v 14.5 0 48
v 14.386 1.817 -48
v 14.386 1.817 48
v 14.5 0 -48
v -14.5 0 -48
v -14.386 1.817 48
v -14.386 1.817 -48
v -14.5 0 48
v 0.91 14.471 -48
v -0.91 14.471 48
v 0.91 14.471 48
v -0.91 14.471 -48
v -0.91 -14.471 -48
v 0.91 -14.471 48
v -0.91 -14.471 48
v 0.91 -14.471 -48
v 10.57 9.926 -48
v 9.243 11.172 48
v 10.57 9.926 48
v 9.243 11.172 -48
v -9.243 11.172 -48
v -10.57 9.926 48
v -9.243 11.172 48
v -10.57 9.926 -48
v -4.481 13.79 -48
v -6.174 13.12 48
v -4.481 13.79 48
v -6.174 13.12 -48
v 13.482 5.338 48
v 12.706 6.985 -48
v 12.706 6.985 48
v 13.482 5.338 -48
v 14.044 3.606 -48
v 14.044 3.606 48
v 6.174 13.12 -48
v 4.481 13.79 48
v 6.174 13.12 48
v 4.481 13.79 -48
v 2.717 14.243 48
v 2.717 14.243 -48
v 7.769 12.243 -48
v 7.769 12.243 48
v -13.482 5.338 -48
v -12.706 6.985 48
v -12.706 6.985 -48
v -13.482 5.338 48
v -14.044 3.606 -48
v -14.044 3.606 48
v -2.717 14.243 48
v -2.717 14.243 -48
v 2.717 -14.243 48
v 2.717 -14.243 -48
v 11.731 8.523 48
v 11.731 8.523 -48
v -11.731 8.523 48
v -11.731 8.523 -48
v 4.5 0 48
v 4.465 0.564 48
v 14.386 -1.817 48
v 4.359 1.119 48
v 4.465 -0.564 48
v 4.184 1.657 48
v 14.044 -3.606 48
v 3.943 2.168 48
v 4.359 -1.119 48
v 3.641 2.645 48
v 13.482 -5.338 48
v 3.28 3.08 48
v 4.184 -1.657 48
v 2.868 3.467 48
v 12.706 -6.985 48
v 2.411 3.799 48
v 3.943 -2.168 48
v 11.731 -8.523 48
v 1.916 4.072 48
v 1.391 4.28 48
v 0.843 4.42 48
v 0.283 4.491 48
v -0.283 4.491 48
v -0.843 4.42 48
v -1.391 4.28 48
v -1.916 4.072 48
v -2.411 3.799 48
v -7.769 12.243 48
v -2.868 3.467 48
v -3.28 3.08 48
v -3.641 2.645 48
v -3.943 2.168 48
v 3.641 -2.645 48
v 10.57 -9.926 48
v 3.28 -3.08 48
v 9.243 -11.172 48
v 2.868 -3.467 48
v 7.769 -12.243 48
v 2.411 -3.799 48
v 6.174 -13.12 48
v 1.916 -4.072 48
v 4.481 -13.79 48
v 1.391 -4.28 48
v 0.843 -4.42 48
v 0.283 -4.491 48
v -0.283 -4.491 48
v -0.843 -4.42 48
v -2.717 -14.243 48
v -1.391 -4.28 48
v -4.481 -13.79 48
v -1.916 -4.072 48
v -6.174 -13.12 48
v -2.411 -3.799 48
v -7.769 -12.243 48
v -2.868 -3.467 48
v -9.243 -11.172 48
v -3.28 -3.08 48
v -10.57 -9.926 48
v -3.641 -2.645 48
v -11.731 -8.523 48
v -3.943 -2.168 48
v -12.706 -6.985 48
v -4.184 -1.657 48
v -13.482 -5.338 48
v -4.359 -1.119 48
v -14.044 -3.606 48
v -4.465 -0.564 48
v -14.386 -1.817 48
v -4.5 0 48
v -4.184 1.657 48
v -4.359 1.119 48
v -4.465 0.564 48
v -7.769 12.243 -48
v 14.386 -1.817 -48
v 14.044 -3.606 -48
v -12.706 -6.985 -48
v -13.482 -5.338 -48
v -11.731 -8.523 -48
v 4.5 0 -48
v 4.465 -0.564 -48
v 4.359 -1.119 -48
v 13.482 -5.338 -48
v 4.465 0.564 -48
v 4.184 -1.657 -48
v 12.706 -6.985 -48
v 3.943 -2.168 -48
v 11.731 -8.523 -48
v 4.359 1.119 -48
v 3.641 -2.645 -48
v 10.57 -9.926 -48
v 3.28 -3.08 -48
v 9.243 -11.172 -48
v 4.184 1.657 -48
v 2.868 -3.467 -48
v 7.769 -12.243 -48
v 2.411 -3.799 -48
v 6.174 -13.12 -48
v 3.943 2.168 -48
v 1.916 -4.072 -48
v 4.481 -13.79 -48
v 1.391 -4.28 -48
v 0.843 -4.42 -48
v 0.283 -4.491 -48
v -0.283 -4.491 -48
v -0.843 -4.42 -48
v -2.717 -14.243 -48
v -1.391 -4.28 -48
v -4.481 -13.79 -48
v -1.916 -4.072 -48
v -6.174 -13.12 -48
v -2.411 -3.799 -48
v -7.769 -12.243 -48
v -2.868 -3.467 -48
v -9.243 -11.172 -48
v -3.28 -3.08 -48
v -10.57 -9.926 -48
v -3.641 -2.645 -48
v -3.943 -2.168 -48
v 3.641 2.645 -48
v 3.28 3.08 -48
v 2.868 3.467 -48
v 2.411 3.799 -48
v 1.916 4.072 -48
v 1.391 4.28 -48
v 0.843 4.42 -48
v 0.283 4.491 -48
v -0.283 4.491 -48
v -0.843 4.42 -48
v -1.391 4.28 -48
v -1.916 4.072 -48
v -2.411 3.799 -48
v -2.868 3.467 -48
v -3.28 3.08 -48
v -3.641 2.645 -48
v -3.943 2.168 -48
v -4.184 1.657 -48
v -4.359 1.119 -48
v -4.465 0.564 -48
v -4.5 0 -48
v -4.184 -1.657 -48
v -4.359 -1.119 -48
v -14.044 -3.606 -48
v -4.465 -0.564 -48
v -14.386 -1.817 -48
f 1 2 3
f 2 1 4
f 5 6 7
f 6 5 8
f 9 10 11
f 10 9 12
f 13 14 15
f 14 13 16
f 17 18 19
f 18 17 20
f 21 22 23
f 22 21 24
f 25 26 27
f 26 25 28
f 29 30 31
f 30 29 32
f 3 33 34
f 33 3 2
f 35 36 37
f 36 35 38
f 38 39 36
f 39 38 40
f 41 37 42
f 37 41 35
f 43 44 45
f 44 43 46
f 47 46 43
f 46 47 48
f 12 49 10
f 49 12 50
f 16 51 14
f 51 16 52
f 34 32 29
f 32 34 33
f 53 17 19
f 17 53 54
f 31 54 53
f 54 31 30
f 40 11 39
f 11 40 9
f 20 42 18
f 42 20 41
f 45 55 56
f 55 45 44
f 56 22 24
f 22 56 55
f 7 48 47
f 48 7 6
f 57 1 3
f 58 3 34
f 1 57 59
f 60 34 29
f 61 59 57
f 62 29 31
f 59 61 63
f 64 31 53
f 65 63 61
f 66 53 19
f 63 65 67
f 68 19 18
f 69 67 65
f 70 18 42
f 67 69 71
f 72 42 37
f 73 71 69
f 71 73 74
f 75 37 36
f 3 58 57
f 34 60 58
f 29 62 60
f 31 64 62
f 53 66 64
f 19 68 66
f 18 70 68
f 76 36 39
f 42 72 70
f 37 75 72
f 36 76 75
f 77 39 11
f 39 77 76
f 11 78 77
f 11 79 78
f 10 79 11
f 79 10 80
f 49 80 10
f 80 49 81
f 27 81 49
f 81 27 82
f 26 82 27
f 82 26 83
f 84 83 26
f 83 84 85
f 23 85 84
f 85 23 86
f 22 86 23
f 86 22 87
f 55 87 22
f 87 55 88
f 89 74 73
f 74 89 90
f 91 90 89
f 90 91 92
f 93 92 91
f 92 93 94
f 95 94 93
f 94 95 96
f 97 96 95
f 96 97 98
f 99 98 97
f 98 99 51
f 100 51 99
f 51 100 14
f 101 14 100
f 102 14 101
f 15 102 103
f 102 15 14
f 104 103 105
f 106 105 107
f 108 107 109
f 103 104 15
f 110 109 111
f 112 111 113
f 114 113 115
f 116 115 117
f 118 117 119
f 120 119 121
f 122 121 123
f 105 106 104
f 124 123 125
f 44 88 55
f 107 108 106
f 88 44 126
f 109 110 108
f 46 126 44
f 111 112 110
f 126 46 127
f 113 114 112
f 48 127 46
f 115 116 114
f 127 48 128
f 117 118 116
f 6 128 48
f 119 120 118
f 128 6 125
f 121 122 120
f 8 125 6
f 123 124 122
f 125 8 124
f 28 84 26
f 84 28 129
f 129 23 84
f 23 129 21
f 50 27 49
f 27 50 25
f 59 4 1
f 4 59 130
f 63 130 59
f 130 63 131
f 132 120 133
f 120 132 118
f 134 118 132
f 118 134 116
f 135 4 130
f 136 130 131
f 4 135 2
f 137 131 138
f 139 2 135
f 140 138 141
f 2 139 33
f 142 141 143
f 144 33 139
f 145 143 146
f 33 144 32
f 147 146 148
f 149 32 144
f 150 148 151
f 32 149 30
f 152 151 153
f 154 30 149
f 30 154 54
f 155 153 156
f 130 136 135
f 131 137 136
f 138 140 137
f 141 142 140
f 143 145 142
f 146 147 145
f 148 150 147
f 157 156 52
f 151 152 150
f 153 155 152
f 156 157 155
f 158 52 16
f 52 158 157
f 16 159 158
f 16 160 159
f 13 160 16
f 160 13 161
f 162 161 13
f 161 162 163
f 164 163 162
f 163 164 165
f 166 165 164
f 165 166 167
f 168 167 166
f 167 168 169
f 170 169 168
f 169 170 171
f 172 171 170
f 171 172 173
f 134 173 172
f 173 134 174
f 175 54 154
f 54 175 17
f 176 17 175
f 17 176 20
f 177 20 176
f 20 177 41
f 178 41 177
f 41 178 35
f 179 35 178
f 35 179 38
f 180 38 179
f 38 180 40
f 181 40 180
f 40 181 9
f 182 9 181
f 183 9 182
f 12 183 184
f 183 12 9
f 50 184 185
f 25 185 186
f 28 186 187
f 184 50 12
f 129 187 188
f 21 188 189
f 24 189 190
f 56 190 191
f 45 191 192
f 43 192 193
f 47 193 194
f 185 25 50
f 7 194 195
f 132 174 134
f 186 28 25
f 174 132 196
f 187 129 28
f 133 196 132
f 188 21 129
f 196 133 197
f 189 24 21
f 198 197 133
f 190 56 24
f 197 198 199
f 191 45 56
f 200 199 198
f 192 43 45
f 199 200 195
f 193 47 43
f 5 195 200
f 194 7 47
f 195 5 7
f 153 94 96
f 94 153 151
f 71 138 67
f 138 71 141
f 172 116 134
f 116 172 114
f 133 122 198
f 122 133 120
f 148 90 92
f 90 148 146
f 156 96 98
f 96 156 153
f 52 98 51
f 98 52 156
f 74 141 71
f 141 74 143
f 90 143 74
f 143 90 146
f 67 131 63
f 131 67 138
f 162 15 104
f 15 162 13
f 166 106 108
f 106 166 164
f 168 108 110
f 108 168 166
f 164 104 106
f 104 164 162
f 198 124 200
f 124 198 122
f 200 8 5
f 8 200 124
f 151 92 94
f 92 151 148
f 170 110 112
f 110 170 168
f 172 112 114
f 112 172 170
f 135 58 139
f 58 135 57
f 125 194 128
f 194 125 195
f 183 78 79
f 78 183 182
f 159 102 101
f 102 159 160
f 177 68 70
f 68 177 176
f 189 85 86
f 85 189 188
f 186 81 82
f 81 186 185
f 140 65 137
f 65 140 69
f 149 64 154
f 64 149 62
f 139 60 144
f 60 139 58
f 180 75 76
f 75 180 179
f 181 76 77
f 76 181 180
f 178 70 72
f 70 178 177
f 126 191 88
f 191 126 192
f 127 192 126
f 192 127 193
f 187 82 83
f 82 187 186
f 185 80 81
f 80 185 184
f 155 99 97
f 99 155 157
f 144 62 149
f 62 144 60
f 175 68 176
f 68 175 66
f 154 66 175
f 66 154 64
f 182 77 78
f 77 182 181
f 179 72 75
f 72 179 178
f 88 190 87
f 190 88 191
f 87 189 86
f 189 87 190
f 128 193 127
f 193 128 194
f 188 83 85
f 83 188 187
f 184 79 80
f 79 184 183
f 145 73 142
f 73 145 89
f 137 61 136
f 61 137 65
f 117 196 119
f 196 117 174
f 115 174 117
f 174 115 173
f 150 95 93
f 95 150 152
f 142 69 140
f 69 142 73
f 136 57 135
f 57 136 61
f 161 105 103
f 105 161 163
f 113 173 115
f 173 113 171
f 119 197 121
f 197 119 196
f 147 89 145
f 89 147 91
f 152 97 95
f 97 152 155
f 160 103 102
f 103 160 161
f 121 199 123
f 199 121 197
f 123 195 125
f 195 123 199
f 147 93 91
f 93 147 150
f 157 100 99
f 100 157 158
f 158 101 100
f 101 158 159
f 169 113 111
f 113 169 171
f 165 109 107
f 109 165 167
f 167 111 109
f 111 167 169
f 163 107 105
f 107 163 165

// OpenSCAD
$fn = 50;


difference() {
	union() {
		translate(v = [0, 0, -48.0000000000]) {
			cylinder(h = 96, r = 14.5000000000);
		}
	}
	union() {
		translate(v = [0, 0, -100.0000000000]) {
			cylinder(h = 200, r = 4.5000000000);
		}
	}
}
